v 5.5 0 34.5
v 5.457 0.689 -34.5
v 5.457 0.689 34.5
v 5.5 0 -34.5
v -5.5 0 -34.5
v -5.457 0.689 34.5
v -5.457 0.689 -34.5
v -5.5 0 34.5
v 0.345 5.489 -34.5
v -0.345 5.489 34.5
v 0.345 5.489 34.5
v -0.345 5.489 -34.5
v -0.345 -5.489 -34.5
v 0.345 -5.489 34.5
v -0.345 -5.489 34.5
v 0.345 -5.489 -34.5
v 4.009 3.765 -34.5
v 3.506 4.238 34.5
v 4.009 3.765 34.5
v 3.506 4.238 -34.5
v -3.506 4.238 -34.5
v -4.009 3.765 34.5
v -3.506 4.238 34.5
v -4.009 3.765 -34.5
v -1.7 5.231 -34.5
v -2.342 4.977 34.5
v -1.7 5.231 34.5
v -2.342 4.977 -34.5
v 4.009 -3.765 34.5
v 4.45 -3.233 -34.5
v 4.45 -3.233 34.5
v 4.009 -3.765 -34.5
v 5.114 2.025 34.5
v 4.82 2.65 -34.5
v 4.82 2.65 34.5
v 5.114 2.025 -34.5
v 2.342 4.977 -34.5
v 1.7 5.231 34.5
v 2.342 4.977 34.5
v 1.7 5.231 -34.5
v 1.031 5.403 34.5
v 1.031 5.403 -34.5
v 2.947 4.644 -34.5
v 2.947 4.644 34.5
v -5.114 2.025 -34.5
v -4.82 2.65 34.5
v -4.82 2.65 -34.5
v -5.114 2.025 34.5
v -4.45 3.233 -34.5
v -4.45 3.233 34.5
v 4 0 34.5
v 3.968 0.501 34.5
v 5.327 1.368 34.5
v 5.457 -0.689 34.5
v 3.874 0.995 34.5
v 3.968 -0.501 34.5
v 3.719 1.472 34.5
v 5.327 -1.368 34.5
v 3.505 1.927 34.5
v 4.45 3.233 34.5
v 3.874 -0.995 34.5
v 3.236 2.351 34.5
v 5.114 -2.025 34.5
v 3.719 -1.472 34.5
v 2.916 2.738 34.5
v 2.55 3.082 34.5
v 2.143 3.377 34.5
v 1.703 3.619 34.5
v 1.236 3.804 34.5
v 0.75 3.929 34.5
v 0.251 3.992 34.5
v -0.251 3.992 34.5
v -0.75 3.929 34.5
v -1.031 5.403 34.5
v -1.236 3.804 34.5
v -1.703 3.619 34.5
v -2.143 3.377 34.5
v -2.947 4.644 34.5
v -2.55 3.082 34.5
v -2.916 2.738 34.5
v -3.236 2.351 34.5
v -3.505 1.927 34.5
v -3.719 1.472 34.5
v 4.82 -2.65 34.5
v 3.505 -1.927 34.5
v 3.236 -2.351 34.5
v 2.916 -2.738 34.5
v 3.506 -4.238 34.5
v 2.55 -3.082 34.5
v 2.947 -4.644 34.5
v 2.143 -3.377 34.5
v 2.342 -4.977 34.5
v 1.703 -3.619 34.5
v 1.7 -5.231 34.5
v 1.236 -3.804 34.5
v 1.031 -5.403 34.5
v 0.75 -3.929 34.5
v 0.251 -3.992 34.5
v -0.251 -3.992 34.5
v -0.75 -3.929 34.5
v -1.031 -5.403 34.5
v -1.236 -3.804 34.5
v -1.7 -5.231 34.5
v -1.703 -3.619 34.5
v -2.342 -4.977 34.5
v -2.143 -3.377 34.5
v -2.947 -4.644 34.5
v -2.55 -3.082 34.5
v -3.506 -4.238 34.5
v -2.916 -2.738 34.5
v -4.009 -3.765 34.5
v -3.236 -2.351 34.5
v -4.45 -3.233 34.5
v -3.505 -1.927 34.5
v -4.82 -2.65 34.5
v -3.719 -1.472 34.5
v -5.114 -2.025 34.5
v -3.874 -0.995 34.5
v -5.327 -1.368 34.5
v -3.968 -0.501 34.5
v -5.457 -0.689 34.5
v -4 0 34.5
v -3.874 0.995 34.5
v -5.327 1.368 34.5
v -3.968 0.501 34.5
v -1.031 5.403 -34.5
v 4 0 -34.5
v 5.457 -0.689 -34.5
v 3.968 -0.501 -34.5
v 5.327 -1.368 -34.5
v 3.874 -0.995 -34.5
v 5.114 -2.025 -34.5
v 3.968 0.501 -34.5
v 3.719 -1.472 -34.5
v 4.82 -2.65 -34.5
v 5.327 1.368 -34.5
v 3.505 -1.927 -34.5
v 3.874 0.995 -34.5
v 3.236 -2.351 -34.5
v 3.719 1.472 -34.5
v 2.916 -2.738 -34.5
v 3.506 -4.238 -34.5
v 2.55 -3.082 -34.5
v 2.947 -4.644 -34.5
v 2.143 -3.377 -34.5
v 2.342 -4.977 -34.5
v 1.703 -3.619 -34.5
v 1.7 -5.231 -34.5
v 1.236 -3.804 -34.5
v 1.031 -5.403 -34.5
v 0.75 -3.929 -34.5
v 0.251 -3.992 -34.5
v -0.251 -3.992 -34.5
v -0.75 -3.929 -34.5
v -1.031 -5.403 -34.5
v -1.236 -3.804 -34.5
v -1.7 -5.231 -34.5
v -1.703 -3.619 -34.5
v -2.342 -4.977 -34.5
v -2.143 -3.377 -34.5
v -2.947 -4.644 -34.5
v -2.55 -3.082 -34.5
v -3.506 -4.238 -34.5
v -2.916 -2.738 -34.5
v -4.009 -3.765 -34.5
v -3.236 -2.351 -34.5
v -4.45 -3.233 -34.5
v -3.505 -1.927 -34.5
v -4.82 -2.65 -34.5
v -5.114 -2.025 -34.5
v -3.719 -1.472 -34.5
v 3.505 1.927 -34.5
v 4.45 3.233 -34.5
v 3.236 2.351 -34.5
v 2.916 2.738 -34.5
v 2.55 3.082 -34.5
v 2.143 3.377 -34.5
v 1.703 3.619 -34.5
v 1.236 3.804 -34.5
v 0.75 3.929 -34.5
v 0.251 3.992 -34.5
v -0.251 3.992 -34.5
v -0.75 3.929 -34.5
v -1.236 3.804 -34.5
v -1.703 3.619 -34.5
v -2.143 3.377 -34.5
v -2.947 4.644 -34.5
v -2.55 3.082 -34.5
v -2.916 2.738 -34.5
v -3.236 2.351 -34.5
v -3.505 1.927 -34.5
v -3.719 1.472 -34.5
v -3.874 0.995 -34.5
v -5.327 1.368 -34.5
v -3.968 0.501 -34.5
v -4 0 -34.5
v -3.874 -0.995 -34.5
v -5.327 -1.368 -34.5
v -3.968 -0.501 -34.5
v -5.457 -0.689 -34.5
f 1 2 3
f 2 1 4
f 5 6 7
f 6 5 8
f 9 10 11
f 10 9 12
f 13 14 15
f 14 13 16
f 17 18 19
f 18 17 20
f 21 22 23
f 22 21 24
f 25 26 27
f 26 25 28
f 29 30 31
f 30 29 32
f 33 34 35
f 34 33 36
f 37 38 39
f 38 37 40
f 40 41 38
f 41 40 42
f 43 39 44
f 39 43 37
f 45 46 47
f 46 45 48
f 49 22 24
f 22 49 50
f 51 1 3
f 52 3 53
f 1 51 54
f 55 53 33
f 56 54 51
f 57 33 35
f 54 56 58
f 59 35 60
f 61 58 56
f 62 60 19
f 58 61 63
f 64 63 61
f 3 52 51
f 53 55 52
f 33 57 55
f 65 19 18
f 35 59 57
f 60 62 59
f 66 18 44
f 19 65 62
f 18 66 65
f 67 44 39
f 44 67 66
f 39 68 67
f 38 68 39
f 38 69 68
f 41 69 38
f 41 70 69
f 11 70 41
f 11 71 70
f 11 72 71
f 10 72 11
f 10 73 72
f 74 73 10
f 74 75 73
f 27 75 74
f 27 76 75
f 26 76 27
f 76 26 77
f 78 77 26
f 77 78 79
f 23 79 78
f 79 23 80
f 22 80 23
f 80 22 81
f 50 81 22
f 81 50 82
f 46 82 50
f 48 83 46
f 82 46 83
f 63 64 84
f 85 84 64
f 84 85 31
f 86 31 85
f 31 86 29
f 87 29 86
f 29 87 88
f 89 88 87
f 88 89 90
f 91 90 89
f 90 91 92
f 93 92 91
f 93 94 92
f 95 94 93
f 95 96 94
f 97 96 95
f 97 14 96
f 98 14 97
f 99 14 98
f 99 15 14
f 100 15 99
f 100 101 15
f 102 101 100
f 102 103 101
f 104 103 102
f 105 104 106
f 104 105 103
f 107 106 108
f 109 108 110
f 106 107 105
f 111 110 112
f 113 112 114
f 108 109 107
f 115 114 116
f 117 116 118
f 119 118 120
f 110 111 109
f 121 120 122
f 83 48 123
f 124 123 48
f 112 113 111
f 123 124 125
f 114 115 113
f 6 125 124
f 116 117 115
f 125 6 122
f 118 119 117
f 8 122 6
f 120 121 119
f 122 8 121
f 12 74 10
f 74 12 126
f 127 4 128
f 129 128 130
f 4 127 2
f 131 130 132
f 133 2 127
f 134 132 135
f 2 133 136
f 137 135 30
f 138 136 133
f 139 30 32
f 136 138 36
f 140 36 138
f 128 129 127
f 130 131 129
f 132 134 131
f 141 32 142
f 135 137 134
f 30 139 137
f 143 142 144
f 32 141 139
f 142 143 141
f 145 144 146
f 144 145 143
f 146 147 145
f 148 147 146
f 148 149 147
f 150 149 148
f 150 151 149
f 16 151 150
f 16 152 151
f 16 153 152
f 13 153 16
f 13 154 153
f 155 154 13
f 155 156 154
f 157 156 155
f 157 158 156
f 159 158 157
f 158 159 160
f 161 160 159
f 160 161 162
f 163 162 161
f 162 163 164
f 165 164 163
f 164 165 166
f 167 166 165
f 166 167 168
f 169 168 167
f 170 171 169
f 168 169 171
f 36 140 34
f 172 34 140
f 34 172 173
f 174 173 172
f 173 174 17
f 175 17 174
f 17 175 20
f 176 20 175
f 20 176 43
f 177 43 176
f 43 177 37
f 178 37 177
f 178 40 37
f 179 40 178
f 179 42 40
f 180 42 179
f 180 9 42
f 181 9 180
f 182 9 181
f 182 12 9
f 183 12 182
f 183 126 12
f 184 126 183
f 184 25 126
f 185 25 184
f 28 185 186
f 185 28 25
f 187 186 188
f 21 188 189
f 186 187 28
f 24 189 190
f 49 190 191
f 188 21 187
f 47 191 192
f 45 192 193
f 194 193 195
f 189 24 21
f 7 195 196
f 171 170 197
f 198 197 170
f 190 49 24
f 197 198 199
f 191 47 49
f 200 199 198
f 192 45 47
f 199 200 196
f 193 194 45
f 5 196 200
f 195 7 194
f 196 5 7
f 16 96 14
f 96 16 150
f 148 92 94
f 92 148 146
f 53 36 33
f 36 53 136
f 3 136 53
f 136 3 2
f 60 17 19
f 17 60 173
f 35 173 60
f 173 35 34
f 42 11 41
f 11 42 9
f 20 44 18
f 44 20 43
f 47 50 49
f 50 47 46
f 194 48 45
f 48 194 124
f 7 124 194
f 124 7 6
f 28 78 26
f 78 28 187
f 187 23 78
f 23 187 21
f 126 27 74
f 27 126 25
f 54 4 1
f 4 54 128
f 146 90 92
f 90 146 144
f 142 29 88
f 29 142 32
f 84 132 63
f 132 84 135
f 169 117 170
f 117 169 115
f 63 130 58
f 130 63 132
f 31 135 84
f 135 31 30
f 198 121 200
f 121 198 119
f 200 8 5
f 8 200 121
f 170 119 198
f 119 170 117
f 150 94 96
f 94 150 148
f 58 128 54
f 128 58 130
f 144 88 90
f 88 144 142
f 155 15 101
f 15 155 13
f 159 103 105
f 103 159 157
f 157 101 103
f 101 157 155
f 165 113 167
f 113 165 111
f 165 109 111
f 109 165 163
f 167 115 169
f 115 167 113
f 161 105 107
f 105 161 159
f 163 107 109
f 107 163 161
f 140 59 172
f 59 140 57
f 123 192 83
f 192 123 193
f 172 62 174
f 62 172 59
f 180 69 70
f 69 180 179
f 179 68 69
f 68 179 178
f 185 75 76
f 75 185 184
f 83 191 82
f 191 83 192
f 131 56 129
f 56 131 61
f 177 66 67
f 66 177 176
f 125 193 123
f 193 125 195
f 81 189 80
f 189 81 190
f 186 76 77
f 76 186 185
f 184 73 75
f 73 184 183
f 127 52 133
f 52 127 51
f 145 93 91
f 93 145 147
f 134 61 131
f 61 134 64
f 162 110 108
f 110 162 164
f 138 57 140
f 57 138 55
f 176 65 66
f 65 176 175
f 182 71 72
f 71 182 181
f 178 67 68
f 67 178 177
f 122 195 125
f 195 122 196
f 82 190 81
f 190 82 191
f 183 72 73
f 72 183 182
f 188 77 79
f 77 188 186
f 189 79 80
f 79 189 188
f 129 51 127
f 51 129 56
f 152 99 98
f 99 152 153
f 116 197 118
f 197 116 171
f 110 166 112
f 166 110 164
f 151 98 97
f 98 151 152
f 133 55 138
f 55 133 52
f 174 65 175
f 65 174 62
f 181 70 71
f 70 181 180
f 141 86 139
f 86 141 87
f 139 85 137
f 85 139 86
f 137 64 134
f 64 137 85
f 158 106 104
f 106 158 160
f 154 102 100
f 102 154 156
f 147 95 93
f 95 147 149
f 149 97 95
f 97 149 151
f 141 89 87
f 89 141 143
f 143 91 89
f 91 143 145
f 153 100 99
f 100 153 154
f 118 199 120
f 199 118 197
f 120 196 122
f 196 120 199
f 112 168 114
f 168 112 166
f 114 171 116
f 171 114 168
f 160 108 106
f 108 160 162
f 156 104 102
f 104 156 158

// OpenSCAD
$fn = 50;


difference() {
	union() {
		translate(v = [0, 0, -34.5000000000]) {
			cylinder(h = 69, r = 5.5000000000);
		}
	}
	union() {
		translate(v = [0, 0, -100.0000000000]) {
			cylinder(h = 200, r = 4.0000000000);
		}
	}
}
